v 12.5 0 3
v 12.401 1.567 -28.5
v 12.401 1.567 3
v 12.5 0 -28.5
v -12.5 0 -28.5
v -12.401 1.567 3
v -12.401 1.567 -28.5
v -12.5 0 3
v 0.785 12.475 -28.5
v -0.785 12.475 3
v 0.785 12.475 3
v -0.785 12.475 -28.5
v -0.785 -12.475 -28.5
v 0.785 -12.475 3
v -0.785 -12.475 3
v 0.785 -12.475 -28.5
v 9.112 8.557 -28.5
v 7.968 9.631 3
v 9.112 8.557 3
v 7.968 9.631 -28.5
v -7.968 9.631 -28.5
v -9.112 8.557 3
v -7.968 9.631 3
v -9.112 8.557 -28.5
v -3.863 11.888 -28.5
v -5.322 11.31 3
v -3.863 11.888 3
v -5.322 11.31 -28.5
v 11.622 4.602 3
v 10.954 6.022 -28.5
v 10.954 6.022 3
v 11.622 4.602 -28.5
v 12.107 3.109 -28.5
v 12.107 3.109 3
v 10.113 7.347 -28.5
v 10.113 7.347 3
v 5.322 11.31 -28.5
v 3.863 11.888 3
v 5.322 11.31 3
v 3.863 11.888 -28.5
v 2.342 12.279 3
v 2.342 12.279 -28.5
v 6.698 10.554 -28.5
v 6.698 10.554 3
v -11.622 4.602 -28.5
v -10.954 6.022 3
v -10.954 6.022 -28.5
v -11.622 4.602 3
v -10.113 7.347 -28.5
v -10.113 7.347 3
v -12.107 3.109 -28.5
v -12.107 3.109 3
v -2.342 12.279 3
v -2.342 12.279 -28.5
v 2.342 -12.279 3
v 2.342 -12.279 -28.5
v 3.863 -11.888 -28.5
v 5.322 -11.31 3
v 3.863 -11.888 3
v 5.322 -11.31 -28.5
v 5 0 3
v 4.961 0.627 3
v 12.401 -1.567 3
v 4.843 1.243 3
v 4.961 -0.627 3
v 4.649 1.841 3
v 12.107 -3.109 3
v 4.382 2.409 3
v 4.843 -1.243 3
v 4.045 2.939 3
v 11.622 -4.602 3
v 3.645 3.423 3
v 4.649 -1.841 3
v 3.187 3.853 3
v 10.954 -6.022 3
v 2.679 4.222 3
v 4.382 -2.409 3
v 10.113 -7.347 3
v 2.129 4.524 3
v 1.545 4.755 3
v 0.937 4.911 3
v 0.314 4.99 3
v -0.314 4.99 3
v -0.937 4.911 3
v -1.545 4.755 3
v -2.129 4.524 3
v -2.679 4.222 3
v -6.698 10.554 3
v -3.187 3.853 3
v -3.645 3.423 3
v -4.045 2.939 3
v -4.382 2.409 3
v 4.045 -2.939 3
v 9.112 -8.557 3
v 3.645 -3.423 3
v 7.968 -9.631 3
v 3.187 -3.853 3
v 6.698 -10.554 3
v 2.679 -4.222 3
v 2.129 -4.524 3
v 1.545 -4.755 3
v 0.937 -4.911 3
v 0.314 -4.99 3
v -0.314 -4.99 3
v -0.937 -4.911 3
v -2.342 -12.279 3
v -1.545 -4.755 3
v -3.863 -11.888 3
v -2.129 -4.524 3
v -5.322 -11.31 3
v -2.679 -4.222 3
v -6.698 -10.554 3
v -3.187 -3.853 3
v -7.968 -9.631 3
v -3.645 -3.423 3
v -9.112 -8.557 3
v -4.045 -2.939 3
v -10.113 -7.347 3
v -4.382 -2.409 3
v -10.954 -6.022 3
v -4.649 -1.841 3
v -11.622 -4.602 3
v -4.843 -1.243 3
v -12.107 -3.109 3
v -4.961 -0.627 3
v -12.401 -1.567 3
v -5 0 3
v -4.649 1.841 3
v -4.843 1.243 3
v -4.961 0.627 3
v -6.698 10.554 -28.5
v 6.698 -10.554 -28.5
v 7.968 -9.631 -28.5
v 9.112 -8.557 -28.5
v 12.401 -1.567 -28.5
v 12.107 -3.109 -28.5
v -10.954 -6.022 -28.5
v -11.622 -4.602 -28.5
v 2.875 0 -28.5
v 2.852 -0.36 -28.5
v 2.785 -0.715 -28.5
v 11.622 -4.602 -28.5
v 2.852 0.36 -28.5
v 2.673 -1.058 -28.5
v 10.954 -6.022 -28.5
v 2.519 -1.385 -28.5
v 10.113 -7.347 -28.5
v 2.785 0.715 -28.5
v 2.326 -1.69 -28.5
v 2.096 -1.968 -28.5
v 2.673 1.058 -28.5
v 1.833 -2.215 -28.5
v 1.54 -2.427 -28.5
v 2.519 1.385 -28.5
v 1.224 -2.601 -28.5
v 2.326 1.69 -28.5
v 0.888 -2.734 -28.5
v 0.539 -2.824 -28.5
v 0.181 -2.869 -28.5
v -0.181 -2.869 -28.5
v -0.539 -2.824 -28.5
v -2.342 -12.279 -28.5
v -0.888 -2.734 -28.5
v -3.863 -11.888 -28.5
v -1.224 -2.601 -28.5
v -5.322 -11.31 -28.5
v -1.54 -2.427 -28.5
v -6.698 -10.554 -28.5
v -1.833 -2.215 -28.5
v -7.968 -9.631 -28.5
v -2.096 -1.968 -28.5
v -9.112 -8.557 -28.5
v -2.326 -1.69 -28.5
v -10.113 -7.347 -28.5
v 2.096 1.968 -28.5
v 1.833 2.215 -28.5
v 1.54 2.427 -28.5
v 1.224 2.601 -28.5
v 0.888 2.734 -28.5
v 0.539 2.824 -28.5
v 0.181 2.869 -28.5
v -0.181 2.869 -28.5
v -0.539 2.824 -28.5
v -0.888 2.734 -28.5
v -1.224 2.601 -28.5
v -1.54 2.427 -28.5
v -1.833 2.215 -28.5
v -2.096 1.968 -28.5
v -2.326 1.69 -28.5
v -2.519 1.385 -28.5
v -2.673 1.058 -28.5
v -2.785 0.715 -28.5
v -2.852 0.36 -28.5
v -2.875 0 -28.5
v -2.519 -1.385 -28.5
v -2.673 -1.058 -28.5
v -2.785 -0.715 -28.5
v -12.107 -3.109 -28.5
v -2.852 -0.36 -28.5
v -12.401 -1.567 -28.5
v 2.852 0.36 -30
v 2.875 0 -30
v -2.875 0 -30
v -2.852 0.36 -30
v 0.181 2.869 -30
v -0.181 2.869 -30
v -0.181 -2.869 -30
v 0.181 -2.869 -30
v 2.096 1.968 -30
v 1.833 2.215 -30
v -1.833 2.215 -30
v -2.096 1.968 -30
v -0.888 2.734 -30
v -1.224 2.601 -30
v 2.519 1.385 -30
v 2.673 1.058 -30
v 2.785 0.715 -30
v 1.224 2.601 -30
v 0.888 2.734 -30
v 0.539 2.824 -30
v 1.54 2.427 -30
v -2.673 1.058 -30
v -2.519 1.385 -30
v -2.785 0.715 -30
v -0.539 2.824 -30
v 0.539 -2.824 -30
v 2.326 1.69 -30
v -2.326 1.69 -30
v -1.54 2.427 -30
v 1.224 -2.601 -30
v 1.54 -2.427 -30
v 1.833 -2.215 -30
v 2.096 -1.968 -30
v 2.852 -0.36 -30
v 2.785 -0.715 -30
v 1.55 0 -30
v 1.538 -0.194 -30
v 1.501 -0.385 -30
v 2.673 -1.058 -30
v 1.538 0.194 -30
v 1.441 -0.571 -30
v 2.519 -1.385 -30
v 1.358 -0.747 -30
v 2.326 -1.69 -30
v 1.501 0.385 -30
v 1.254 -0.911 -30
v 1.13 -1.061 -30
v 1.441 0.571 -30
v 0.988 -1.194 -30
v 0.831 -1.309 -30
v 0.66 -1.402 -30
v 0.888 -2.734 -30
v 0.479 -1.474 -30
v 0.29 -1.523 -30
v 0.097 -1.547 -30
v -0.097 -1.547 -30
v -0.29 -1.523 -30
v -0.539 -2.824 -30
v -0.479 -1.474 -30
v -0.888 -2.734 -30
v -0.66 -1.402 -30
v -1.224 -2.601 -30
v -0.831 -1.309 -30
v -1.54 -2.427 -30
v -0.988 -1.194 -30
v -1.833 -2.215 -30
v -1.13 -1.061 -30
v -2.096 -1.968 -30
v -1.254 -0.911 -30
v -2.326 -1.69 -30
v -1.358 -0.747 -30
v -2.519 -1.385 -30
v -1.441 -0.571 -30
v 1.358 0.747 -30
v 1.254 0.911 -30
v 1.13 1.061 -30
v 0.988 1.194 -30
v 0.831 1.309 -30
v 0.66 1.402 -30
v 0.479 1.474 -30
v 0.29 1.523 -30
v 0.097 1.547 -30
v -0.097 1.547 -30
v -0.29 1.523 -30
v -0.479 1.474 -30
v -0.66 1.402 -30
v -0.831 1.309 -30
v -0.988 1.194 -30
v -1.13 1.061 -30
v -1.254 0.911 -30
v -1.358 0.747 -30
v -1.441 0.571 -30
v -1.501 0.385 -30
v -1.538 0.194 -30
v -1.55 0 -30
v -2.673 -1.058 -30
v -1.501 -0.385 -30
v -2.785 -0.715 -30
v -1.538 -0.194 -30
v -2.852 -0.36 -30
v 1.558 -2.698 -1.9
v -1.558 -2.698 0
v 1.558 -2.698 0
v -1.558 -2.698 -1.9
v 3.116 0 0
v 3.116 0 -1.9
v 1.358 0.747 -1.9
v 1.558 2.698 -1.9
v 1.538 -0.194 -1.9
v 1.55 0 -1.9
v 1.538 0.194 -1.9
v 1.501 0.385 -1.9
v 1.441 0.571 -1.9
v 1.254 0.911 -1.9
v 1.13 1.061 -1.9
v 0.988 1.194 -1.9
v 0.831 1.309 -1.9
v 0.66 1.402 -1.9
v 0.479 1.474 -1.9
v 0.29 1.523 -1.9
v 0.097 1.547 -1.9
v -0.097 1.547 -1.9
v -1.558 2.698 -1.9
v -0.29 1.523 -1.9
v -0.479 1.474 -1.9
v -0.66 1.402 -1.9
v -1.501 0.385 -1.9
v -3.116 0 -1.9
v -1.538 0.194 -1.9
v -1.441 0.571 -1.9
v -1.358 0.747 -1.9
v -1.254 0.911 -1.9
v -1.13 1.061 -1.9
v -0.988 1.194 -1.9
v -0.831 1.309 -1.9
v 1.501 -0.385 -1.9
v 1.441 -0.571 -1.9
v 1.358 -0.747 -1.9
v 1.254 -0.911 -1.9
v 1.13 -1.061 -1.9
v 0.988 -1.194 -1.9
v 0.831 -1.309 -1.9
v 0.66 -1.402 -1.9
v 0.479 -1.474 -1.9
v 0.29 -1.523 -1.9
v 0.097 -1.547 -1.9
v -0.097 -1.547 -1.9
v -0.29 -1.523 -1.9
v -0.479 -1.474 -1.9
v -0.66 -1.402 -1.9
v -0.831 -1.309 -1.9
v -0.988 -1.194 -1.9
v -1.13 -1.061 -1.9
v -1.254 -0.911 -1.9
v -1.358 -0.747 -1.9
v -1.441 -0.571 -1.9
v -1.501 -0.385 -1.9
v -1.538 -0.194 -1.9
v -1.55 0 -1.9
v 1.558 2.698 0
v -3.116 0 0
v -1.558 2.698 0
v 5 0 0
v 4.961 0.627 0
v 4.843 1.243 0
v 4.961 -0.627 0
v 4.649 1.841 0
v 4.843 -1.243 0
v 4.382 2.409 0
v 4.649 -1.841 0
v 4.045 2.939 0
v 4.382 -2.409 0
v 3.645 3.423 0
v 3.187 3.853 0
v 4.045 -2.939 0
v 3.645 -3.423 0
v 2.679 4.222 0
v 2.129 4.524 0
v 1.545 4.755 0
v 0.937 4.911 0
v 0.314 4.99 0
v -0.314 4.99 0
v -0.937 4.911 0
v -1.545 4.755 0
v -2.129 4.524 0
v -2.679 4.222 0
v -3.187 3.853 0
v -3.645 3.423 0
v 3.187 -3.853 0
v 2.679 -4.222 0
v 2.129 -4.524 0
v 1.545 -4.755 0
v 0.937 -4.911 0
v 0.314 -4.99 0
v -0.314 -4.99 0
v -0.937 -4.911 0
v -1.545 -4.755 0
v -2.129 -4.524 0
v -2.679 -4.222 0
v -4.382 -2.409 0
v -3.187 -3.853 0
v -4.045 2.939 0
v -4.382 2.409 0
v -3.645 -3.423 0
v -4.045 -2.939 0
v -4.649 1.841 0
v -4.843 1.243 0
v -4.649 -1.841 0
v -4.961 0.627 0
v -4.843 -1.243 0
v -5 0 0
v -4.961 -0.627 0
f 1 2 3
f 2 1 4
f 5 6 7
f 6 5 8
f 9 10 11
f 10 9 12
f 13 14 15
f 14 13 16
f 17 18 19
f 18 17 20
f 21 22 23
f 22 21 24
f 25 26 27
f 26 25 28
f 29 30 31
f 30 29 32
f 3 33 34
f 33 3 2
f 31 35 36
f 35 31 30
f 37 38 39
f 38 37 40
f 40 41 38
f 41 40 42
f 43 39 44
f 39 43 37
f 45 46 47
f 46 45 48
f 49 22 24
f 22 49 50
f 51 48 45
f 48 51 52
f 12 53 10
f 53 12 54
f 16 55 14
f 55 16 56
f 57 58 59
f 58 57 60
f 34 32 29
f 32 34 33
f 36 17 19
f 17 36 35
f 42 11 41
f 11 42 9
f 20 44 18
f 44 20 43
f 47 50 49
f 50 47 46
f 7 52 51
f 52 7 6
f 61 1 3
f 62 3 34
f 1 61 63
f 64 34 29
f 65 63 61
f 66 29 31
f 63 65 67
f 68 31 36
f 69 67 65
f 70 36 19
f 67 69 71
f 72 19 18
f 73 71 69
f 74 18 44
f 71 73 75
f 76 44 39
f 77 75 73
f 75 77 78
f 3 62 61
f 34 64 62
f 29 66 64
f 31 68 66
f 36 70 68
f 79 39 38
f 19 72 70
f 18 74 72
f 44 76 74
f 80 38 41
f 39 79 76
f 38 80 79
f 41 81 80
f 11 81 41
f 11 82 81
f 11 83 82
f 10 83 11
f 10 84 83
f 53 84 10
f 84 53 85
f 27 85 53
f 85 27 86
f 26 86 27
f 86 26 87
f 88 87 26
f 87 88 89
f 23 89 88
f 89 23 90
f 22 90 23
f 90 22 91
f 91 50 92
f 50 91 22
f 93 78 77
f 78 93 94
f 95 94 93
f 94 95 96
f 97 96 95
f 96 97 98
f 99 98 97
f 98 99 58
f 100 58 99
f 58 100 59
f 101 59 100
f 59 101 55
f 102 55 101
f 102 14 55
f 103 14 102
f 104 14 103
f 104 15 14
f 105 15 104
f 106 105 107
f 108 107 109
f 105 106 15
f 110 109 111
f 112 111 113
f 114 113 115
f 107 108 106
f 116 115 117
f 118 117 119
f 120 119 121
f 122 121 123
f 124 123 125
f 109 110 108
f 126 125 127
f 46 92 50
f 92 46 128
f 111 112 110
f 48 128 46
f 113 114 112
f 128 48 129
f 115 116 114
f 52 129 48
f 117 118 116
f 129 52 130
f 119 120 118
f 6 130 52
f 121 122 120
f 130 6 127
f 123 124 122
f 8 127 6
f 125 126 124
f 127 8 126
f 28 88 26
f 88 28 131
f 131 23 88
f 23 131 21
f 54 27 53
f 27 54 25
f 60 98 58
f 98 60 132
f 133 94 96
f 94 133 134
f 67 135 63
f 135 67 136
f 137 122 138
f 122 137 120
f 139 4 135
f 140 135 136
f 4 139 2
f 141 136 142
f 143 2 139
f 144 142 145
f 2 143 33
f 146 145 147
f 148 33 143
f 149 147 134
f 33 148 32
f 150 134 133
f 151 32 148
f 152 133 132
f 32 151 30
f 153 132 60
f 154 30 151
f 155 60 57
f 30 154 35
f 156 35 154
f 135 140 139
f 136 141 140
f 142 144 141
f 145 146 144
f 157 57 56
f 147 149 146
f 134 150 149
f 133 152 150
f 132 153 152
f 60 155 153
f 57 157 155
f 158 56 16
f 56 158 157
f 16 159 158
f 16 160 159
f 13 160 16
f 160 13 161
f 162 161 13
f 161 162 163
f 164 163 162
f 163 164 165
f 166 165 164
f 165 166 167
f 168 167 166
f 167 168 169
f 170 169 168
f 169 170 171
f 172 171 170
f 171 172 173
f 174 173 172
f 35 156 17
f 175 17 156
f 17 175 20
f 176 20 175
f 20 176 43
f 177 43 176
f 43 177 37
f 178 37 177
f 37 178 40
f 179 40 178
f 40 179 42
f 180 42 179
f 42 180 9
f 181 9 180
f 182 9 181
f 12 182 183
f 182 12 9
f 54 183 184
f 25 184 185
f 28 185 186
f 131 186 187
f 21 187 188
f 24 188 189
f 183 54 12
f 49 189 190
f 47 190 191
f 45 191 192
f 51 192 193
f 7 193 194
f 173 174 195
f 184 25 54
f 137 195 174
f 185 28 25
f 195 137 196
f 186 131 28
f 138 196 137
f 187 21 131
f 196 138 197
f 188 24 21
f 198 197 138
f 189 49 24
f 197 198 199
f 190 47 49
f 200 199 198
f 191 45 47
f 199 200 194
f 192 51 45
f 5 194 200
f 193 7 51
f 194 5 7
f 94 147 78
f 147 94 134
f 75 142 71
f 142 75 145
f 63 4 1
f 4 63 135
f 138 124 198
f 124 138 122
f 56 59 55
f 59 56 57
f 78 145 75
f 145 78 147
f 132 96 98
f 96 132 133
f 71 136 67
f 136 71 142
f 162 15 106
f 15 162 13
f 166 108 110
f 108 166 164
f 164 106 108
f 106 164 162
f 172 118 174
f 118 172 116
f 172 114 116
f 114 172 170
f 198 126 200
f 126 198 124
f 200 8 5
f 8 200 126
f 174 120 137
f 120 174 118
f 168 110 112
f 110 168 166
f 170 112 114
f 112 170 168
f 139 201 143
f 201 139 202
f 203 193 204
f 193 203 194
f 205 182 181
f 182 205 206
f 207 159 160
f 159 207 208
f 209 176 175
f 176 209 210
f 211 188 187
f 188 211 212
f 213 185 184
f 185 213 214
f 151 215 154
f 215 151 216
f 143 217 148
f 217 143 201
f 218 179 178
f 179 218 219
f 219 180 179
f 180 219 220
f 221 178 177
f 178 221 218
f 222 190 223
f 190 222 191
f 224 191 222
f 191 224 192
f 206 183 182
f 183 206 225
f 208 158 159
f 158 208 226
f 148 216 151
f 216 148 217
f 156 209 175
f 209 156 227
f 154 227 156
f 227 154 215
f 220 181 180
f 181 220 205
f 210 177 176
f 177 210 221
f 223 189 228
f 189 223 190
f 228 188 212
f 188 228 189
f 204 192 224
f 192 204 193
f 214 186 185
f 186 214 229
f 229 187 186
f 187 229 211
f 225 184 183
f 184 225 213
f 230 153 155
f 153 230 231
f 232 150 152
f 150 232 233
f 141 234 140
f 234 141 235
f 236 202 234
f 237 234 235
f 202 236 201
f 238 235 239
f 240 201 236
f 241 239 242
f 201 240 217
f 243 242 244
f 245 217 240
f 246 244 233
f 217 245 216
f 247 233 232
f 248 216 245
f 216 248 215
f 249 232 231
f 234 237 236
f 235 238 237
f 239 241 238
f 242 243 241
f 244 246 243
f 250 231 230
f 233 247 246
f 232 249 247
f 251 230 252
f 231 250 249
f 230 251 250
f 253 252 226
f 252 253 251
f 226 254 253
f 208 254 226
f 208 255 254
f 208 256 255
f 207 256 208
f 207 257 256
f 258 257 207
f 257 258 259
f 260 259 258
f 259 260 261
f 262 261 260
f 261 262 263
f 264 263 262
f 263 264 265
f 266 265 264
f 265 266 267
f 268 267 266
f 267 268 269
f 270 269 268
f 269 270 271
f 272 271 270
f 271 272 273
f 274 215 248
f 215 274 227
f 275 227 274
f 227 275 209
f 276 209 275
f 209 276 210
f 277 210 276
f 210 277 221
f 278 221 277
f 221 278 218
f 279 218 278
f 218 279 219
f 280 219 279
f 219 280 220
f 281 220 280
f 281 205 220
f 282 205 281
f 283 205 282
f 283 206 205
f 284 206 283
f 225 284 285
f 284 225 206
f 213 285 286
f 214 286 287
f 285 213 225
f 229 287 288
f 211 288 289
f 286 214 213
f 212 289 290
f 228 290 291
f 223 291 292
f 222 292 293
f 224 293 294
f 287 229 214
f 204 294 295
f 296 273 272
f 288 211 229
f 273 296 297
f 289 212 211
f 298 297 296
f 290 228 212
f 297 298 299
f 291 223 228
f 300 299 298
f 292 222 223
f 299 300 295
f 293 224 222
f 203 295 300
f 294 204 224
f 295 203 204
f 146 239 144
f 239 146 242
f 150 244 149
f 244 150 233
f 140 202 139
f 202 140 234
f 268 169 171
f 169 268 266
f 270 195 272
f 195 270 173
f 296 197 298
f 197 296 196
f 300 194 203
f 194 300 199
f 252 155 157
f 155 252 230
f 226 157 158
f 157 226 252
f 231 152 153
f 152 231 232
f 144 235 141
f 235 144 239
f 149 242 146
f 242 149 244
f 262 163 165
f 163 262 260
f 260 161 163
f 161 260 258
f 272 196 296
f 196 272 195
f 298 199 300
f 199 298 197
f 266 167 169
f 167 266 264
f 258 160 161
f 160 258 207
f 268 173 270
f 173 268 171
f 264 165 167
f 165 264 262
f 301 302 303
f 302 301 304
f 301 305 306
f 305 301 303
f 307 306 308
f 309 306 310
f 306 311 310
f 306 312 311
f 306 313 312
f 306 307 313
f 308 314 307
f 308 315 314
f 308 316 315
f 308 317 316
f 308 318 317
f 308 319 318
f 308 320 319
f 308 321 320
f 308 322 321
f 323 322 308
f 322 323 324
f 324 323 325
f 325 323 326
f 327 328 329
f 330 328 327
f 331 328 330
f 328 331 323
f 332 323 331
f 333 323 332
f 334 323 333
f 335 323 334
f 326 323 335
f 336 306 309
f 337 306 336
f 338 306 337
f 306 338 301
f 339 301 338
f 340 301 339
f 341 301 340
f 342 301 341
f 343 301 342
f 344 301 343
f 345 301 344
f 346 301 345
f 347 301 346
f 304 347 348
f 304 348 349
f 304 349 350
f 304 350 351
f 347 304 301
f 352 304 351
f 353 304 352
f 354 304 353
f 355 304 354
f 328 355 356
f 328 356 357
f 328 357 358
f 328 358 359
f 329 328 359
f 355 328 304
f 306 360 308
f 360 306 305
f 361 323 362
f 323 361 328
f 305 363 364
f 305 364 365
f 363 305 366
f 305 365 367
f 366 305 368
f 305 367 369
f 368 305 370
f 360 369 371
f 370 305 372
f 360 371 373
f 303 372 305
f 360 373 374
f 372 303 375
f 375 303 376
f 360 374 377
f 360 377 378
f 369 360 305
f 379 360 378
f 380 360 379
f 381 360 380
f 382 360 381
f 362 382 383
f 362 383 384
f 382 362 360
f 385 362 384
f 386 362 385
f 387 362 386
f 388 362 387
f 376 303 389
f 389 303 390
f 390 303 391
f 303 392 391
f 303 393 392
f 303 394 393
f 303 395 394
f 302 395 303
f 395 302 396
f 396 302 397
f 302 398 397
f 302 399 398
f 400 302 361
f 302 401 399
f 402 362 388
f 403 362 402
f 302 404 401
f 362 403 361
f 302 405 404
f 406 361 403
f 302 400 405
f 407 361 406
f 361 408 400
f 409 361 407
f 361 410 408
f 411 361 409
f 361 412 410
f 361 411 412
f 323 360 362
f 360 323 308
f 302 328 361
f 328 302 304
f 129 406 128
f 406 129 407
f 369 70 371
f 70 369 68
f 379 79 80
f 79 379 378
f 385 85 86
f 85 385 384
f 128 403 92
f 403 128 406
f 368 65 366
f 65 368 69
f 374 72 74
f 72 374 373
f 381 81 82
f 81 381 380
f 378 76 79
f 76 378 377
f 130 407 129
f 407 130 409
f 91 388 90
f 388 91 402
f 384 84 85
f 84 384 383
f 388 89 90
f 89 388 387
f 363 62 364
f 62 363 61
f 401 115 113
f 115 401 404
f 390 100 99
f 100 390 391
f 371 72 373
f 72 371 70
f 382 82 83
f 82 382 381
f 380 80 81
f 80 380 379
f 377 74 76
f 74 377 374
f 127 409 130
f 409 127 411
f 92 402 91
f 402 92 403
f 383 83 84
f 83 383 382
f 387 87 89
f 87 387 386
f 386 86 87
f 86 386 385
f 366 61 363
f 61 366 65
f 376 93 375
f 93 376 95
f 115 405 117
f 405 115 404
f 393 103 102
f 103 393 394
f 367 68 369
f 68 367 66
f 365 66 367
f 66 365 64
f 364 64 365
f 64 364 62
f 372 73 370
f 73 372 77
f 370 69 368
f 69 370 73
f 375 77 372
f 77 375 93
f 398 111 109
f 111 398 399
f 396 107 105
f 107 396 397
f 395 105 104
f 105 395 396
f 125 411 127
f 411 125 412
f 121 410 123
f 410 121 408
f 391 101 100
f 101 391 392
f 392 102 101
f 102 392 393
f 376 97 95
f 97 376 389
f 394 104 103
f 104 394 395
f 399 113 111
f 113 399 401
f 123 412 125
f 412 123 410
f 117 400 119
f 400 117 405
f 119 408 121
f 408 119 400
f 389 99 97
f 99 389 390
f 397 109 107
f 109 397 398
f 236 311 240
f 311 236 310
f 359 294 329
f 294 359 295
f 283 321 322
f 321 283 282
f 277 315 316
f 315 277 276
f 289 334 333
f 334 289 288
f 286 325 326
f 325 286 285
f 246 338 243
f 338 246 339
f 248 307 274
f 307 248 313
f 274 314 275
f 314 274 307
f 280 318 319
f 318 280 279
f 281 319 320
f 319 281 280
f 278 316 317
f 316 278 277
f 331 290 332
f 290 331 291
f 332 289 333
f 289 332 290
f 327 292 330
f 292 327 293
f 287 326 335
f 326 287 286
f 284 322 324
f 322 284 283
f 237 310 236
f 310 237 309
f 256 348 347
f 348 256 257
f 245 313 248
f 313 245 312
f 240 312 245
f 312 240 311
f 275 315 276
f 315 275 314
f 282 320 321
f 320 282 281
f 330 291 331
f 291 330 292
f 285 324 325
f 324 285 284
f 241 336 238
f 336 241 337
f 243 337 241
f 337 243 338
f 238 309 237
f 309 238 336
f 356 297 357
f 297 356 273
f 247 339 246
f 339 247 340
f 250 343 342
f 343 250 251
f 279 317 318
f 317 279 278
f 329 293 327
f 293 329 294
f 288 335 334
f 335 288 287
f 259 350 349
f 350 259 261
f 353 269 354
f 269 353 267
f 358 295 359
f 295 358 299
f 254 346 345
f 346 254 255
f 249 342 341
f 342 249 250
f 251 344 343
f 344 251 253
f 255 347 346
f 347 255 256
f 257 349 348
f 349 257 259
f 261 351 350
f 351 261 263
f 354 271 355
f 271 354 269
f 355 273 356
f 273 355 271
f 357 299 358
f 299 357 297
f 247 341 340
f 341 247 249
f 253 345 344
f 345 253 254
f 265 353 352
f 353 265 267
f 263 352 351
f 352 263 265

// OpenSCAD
$fn = 50;

difference() {
	union() {
		translate(v = [0, 0, -28.5]) {
			cylinder(h = 31.5, r = 12.5);
		}
		#translate(v = [0, 0, -30.0]) {
			cylinder(h = 30, r = 2.875);
		}
	}
	union() {
		translate(v = [0, 0, 0]) {
			rotate(a = [0, 0, 0]) {
				difference() {
					union() {
						translate(v = [0, 0, -1.9]) {
							linear_extrude(height = 1.9) {
								polygon(points = [[3.1158, 0.0], [1.5579000000000005, 2.698361953111554], [-1.5578999999999994, 2.6983619531115544], [-3.1158, 3.815754496783323e-16], [-1.5579000000000014, -2.6983619531115535], [1.557899999999998, -2.6983619531115552]]);
							}
						}
					}
					union();
				}
			}
		}
		#cylinder(h = 3, r = 5.0);
		#translate(v = [0, 0, -100.0]) {
			cylinder(h = 200, r = 1.55);
		}
	}
}
